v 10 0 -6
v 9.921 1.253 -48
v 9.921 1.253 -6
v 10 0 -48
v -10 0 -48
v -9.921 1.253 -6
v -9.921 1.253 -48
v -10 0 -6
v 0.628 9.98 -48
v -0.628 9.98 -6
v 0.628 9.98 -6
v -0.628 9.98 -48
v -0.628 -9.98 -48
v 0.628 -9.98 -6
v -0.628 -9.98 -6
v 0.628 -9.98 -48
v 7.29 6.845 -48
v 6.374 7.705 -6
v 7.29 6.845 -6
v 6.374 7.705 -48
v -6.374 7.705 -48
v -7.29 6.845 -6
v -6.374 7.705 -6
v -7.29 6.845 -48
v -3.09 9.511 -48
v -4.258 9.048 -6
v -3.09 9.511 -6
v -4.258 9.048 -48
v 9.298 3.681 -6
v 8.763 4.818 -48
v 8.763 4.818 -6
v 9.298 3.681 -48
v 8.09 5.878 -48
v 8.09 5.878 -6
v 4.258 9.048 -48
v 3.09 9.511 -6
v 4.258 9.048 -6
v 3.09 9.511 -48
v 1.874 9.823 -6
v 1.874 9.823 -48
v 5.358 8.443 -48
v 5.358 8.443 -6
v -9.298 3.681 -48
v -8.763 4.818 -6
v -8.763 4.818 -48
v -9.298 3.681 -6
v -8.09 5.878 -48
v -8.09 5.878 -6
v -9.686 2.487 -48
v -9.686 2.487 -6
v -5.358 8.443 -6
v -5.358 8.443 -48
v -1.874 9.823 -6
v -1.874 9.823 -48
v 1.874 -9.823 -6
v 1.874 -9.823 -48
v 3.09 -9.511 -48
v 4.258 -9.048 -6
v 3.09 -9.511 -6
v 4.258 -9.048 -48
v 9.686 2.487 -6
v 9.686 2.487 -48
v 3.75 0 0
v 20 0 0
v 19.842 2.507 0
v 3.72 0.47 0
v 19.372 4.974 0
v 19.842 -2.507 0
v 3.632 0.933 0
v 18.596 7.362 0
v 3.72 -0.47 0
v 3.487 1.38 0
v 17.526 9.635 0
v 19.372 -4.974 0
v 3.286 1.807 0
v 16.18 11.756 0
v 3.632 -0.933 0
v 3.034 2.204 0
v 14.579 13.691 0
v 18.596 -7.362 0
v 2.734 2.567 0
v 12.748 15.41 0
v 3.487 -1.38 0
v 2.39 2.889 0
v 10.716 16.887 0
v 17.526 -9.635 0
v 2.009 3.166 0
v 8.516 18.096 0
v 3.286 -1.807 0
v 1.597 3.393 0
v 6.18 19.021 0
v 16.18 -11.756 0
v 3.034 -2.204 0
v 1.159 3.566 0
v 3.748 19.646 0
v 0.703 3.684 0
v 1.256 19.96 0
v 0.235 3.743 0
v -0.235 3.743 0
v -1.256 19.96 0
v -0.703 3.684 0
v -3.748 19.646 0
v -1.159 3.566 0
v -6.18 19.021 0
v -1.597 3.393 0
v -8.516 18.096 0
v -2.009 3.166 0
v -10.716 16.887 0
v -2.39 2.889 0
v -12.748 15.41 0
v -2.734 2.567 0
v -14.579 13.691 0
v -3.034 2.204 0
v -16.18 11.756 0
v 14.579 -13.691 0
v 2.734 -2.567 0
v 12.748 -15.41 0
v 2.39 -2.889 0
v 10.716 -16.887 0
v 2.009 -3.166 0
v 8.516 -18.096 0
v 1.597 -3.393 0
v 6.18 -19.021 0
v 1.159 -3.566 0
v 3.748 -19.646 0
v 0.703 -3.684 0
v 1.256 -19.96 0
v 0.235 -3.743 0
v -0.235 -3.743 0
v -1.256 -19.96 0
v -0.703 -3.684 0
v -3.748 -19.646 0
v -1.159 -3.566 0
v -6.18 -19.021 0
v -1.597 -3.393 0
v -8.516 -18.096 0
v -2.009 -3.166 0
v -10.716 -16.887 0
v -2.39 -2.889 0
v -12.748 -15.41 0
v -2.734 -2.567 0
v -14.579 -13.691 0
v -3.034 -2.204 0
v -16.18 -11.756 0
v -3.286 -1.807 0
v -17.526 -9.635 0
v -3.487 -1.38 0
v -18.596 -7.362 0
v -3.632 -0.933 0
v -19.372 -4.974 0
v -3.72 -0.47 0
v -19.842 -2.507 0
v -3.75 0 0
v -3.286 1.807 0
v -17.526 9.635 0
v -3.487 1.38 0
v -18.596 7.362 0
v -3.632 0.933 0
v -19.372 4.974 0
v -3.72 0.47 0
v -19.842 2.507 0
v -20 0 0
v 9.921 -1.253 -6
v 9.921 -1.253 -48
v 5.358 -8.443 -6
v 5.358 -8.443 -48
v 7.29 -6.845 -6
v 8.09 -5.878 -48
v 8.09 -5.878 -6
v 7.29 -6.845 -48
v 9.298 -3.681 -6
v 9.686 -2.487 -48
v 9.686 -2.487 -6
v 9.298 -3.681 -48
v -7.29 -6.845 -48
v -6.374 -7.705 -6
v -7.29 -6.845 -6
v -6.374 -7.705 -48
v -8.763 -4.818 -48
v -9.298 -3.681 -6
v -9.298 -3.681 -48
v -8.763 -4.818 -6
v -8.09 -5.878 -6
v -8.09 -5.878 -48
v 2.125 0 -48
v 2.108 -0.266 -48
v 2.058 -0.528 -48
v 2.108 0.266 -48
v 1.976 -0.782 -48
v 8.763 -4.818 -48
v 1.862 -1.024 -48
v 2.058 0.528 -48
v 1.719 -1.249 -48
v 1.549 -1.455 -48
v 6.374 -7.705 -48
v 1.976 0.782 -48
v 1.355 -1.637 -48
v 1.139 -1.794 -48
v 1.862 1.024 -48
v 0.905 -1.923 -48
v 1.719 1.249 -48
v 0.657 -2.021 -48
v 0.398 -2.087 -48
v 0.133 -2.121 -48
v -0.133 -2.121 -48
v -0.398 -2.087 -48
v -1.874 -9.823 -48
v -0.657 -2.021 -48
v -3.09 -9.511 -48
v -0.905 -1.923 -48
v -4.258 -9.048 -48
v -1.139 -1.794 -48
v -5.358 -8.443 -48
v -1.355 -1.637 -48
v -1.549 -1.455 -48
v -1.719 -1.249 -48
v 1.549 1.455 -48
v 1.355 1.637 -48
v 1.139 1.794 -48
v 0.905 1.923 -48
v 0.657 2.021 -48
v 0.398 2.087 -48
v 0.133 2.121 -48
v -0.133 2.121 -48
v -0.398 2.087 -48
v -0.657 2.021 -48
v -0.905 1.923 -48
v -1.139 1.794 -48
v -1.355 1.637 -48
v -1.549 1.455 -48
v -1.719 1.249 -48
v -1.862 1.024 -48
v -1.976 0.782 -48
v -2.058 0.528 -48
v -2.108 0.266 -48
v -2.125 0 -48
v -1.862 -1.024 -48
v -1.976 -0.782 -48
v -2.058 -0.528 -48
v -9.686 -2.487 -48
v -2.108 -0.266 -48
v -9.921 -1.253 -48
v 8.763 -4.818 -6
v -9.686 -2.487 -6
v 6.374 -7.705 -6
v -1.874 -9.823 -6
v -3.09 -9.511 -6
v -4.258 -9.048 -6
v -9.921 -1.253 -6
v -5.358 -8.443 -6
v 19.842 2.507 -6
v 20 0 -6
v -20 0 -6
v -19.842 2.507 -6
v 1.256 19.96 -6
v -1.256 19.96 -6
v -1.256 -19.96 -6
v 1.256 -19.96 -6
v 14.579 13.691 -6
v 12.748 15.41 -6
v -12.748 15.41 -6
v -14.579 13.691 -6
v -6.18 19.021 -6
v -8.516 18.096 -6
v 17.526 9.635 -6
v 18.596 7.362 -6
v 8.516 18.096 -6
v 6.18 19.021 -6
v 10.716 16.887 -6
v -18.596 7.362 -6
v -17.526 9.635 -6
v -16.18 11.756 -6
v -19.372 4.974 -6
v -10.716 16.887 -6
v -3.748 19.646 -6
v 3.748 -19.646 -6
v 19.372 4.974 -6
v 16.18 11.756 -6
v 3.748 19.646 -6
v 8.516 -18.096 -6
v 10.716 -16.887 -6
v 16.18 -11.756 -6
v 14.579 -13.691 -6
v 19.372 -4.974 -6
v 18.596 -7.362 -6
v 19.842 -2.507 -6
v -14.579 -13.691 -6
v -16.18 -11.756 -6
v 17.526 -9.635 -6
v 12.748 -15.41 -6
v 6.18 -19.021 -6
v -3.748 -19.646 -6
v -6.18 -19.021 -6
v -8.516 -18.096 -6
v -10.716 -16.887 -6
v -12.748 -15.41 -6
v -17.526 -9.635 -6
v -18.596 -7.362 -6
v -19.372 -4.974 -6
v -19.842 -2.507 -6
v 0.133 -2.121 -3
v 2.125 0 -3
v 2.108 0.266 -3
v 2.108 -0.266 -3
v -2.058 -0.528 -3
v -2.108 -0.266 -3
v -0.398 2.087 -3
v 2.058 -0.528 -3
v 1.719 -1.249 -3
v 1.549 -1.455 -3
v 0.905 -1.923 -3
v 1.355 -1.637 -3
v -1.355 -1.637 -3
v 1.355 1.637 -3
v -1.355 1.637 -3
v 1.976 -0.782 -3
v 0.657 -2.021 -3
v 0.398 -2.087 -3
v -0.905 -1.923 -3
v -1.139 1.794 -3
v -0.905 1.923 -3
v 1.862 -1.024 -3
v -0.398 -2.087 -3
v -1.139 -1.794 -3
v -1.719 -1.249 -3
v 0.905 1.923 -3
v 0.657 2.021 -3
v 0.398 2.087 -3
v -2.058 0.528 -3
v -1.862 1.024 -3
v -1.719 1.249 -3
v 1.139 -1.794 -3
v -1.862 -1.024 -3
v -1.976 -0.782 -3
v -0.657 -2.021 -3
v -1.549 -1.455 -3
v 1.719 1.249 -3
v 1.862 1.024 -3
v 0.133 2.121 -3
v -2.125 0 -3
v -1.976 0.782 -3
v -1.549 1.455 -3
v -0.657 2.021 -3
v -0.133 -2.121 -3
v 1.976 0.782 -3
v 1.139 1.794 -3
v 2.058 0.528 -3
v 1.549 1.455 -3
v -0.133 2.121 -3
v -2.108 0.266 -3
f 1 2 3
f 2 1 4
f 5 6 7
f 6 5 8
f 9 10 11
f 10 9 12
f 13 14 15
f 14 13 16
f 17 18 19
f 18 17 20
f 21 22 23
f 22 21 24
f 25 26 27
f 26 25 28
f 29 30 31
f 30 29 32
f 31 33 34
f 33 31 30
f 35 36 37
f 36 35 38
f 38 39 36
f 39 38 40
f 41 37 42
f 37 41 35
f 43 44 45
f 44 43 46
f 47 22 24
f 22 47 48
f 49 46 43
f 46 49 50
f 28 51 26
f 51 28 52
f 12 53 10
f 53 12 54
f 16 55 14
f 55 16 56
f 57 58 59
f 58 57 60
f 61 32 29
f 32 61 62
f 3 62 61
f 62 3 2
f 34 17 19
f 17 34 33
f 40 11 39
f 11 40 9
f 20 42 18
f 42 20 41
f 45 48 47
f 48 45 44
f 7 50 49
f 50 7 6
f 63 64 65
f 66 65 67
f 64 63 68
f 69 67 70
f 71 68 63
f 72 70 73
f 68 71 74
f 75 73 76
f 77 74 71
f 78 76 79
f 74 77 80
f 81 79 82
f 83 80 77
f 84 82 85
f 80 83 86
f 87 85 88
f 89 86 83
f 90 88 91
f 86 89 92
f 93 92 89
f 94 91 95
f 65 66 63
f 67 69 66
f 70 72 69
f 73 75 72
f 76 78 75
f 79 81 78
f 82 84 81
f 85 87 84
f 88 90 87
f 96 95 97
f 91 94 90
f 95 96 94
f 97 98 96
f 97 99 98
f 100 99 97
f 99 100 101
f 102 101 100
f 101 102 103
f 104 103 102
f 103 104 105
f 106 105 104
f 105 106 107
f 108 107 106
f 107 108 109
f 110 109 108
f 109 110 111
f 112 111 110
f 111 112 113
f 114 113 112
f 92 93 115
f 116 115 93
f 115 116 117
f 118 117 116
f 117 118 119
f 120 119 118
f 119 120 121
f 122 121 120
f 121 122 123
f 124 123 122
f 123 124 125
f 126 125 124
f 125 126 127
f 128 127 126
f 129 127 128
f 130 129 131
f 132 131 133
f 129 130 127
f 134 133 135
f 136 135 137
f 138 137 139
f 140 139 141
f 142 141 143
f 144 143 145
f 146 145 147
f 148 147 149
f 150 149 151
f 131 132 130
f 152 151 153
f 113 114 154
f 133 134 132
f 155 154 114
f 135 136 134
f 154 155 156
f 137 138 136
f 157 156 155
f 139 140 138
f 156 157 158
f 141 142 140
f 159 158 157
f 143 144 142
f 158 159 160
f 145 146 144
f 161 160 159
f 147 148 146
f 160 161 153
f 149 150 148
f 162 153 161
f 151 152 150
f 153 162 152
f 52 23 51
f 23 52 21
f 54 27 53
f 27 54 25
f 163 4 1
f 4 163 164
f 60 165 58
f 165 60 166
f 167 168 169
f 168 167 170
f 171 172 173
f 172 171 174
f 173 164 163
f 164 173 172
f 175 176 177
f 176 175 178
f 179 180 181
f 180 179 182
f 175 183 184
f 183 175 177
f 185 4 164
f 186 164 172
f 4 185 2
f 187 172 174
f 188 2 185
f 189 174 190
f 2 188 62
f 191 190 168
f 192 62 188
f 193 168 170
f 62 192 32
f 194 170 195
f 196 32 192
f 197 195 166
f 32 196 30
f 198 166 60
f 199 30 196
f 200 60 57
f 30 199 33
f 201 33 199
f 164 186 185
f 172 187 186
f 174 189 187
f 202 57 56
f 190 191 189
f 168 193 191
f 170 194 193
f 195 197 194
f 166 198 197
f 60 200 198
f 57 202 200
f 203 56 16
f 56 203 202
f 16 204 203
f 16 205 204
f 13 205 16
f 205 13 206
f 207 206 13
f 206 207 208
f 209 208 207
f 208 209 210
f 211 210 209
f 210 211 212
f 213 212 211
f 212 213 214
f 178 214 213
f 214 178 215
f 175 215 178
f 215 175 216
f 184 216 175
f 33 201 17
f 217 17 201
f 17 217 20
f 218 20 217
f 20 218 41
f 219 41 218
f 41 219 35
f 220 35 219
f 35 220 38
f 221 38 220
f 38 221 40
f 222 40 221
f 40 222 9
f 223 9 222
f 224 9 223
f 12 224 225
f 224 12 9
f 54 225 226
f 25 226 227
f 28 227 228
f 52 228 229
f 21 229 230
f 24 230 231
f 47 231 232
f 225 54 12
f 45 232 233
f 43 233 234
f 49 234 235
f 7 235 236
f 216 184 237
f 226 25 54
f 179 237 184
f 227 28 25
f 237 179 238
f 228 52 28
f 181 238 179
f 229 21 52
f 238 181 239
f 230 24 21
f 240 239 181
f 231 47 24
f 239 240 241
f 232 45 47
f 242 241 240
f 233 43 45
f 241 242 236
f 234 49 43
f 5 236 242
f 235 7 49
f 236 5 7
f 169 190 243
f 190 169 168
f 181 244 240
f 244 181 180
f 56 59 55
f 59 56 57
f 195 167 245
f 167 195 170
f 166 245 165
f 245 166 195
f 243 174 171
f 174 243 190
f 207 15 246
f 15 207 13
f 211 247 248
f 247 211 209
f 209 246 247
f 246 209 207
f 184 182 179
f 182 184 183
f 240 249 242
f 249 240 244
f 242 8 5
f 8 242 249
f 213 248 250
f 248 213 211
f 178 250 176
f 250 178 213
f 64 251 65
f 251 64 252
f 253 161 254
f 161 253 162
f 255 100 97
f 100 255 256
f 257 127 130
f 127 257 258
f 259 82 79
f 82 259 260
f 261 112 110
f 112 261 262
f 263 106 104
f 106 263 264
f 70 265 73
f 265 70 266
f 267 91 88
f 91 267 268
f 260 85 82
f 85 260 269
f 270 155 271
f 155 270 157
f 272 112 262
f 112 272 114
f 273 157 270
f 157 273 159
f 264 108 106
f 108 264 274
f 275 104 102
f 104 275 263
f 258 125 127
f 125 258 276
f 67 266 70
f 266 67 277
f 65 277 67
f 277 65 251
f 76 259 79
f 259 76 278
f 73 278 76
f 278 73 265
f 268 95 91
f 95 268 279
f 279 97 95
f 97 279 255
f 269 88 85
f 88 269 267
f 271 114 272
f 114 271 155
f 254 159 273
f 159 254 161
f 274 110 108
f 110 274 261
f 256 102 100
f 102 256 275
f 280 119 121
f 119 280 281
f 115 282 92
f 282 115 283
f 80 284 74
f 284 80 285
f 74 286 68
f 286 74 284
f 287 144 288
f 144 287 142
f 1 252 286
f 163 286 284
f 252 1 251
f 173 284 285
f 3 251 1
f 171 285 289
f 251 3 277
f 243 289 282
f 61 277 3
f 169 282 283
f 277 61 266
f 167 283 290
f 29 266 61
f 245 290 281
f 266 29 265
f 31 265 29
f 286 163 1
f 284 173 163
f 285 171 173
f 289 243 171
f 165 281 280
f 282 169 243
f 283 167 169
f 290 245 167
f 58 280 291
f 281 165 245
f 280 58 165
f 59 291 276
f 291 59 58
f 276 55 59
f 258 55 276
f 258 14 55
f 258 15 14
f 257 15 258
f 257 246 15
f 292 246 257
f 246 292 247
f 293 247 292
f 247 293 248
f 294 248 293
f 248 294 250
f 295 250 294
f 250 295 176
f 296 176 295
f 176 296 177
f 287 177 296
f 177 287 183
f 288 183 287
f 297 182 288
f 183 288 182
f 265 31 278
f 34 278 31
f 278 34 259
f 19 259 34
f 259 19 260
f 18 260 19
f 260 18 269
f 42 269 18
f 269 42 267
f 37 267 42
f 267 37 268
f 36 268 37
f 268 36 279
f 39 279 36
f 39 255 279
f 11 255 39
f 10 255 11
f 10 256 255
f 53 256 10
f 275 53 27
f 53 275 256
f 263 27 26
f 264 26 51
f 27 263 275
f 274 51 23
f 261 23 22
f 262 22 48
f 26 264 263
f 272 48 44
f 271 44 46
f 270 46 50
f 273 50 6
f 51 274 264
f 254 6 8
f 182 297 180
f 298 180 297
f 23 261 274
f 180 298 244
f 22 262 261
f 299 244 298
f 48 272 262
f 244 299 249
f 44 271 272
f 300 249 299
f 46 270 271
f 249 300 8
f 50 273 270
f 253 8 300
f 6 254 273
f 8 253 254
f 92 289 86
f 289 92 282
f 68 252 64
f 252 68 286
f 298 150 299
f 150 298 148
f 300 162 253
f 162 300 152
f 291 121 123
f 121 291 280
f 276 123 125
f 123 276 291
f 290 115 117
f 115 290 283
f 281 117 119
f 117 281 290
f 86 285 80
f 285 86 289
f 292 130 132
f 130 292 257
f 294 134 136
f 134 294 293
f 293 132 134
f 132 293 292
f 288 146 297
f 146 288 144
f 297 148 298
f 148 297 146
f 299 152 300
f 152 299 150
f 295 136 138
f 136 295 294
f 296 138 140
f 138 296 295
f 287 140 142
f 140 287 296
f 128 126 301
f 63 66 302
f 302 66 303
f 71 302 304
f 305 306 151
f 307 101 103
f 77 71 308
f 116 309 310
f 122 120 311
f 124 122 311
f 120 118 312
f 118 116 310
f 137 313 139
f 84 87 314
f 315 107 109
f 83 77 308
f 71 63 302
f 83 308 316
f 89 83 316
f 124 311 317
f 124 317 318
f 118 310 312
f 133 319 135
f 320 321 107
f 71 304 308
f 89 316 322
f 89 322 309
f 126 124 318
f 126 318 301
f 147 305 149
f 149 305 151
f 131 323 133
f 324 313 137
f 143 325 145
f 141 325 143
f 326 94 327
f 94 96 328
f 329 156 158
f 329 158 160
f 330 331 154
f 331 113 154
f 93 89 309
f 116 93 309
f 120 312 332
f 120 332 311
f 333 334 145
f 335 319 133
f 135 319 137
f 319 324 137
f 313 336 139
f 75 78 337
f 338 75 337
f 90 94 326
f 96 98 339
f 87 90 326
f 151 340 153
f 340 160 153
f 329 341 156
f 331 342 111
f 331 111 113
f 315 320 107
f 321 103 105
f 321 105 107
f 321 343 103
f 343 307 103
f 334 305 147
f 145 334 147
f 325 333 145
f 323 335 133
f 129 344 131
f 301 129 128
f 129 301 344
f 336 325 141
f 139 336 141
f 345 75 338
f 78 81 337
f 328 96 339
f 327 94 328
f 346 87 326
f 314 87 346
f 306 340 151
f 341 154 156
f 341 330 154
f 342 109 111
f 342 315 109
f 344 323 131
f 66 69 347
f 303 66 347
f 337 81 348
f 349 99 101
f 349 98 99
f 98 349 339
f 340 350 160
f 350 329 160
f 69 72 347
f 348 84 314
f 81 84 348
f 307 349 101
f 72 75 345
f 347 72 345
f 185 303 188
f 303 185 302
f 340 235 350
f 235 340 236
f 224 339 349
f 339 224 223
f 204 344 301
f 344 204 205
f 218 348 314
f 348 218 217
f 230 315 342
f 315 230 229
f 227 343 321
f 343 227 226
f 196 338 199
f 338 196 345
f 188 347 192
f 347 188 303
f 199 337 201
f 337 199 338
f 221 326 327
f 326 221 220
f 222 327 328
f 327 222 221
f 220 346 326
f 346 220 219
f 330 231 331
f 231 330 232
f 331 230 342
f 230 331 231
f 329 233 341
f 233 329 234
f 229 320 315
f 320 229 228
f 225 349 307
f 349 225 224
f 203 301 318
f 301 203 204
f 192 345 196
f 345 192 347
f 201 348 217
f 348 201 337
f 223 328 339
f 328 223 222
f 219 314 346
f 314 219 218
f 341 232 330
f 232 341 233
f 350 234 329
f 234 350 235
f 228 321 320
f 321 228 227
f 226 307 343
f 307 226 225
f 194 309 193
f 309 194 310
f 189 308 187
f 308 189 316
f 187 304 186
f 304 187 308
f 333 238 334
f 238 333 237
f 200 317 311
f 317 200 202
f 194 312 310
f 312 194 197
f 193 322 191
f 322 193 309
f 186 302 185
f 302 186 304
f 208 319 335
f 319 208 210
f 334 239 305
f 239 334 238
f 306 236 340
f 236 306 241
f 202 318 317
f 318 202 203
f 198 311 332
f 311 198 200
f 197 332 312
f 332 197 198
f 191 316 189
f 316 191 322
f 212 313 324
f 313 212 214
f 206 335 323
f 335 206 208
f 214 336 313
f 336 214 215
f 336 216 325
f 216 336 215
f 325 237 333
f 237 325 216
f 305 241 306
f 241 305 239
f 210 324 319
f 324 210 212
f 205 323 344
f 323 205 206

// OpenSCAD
$fn = 50;


difference() {
	union() {
		translate(v = [0, 0, -48.0000000000]) {
			cylinder(h = 48, r = 10.0000000000);
		}
		translate(v = [0, 0, -6.0000000000]) {
			cylinder(h = 6, r = 20.0000000000);
		}
	}
	union() {
		translate(v = [0, 0, 0]) {
			rotate(a = [0, 0, 0]) {
				difference() {
					union() {
						#translate(v = [0, 0, -48.0000000000]) {
							cylinder(h = 48, r = 2.0000000000);
						}
						#translate(v = [0, 0, -3]) {
							cylinder(h = 3, r = 10.0000000000, r1 = 2.1250000000, r2 = 3.7500000000);
						}
						#translate(v = [0, 0, -48.0000000000]) {
							cylinder(h = 48, r = 2.1250000000);
						}
						#translate(v = [0, 0, -48.0000000000]) {
							cylinder(h = 48, r = 2.0000000000);
						}
					}
					union();
				}
			}
		}
	}
}
